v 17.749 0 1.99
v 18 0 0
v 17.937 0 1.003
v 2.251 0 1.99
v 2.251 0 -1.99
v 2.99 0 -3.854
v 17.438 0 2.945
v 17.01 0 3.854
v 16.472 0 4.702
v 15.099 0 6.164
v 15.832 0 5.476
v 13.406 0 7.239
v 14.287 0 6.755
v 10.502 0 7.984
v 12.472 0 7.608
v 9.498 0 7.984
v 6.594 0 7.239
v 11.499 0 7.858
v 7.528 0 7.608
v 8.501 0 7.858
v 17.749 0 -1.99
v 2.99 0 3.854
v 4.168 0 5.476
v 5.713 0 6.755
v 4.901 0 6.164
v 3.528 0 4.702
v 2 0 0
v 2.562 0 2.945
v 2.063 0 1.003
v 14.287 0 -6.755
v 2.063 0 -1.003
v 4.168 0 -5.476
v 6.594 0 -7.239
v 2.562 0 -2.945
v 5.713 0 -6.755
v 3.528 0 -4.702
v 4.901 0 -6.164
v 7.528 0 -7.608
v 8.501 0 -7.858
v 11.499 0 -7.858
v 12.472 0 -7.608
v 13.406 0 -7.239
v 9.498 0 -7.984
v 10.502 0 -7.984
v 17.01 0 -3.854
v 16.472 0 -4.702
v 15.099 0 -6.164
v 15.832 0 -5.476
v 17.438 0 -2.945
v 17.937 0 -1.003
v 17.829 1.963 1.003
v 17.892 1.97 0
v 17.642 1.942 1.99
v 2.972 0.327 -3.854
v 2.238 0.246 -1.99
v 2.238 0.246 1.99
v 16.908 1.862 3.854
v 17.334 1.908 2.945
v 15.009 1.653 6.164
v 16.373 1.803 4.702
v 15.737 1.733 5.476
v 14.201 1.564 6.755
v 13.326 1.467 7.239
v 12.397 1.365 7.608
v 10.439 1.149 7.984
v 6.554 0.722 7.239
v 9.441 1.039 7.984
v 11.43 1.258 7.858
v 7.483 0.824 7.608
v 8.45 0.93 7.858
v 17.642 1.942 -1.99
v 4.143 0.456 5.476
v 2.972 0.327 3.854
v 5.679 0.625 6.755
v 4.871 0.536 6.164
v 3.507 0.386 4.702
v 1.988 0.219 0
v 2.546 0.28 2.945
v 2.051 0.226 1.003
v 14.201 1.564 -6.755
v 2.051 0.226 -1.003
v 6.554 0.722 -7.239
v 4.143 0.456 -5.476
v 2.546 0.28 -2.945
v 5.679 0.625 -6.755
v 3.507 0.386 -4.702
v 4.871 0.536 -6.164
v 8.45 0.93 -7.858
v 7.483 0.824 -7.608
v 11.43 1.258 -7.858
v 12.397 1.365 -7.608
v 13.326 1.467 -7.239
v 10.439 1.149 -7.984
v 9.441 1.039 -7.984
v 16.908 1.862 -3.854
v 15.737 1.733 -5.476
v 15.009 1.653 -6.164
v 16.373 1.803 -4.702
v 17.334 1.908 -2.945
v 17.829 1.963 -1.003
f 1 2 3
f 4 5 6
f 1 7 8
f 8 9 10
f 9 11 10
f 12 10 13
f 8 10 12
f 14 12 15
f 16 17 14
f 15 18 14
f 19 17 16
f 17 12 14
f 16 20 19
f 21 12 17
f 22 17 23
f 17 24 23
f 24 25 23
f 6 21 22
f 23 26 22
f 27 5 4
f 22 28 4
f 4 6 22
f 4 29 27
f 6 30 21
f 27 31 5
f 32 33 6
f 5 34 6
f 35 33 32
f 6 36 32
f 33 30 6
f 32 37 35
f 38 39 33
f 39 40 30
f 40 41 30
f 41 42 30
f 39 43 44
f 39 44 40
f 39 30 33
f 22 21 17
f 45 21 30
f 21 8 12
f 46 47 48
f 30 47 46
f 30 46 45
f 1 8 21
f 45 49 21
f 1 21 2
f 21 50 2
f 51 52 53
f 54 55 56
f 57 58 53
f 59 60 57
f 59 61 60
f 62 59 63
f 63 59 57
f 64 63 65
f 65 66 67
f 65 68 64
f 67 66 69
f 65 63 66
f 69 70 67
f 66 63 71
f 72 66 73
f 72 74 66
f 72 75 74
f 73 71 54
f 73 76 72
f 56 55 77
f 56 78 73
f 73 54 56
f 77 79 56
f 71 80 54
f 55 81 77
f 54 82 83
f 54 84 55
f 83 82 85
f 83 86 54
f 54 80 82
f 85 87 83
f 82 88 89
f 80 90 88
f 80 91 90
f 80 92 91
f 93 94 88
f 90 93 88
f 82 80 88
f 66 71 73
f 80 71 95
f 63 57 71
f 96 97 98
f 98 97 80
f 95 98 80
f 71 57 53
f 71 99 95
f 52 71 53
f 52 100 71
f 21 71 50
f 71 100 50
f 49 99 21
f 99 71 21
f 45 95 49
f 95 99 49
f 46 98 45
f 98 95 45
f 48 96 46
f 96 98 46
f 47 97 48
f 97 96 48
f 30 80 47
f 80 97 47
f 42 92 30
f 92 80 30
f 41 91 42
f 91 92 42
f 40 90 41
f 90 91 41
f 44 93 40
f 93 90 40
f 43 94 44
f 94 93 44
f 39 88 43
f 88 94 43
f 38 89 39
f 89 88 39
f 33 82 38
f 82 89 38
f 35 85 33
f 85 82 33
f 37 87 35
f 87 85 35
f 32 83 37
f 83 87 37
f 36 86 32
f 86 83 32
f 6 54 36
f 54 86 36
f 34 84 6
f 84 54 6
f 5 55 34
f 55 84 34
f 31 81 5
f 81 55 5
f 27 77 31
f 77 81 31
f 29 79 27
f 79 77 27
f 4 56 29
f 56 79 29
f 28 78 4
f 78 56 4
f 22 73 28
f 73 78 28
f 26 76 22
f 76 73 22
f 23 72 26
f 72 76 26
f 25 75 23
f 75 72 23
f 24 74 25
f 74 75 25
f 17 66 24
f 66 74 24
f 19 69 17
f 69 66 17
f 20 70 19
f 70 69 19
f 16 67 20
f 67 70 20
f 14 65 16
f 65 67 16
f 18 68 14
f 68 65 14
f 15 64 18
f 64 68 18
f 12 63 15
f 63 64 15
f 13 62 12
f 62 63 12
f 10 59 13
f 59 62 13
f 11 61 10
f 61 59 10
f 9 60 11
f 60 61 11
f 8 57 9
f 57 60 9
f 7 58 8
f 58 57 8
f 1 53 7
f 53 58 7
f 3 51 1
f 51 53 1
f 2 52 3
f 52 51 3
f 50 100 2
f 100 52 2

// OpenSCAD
// Torus Knot Parameters
radius_top = 10;
radius_bottom = 8;
height = 2;
resolution = 50;

module torus_knot(radius_top, radius_bottom, height, resolution) {
  rotate_extrude(angle = 2 * PI)
  translate([radius_top, 0, 0])
  circle(r = radius_bottom, $fn = resolution);
}

torus_knot(radius_top, radius_bottom, height, resolution);
